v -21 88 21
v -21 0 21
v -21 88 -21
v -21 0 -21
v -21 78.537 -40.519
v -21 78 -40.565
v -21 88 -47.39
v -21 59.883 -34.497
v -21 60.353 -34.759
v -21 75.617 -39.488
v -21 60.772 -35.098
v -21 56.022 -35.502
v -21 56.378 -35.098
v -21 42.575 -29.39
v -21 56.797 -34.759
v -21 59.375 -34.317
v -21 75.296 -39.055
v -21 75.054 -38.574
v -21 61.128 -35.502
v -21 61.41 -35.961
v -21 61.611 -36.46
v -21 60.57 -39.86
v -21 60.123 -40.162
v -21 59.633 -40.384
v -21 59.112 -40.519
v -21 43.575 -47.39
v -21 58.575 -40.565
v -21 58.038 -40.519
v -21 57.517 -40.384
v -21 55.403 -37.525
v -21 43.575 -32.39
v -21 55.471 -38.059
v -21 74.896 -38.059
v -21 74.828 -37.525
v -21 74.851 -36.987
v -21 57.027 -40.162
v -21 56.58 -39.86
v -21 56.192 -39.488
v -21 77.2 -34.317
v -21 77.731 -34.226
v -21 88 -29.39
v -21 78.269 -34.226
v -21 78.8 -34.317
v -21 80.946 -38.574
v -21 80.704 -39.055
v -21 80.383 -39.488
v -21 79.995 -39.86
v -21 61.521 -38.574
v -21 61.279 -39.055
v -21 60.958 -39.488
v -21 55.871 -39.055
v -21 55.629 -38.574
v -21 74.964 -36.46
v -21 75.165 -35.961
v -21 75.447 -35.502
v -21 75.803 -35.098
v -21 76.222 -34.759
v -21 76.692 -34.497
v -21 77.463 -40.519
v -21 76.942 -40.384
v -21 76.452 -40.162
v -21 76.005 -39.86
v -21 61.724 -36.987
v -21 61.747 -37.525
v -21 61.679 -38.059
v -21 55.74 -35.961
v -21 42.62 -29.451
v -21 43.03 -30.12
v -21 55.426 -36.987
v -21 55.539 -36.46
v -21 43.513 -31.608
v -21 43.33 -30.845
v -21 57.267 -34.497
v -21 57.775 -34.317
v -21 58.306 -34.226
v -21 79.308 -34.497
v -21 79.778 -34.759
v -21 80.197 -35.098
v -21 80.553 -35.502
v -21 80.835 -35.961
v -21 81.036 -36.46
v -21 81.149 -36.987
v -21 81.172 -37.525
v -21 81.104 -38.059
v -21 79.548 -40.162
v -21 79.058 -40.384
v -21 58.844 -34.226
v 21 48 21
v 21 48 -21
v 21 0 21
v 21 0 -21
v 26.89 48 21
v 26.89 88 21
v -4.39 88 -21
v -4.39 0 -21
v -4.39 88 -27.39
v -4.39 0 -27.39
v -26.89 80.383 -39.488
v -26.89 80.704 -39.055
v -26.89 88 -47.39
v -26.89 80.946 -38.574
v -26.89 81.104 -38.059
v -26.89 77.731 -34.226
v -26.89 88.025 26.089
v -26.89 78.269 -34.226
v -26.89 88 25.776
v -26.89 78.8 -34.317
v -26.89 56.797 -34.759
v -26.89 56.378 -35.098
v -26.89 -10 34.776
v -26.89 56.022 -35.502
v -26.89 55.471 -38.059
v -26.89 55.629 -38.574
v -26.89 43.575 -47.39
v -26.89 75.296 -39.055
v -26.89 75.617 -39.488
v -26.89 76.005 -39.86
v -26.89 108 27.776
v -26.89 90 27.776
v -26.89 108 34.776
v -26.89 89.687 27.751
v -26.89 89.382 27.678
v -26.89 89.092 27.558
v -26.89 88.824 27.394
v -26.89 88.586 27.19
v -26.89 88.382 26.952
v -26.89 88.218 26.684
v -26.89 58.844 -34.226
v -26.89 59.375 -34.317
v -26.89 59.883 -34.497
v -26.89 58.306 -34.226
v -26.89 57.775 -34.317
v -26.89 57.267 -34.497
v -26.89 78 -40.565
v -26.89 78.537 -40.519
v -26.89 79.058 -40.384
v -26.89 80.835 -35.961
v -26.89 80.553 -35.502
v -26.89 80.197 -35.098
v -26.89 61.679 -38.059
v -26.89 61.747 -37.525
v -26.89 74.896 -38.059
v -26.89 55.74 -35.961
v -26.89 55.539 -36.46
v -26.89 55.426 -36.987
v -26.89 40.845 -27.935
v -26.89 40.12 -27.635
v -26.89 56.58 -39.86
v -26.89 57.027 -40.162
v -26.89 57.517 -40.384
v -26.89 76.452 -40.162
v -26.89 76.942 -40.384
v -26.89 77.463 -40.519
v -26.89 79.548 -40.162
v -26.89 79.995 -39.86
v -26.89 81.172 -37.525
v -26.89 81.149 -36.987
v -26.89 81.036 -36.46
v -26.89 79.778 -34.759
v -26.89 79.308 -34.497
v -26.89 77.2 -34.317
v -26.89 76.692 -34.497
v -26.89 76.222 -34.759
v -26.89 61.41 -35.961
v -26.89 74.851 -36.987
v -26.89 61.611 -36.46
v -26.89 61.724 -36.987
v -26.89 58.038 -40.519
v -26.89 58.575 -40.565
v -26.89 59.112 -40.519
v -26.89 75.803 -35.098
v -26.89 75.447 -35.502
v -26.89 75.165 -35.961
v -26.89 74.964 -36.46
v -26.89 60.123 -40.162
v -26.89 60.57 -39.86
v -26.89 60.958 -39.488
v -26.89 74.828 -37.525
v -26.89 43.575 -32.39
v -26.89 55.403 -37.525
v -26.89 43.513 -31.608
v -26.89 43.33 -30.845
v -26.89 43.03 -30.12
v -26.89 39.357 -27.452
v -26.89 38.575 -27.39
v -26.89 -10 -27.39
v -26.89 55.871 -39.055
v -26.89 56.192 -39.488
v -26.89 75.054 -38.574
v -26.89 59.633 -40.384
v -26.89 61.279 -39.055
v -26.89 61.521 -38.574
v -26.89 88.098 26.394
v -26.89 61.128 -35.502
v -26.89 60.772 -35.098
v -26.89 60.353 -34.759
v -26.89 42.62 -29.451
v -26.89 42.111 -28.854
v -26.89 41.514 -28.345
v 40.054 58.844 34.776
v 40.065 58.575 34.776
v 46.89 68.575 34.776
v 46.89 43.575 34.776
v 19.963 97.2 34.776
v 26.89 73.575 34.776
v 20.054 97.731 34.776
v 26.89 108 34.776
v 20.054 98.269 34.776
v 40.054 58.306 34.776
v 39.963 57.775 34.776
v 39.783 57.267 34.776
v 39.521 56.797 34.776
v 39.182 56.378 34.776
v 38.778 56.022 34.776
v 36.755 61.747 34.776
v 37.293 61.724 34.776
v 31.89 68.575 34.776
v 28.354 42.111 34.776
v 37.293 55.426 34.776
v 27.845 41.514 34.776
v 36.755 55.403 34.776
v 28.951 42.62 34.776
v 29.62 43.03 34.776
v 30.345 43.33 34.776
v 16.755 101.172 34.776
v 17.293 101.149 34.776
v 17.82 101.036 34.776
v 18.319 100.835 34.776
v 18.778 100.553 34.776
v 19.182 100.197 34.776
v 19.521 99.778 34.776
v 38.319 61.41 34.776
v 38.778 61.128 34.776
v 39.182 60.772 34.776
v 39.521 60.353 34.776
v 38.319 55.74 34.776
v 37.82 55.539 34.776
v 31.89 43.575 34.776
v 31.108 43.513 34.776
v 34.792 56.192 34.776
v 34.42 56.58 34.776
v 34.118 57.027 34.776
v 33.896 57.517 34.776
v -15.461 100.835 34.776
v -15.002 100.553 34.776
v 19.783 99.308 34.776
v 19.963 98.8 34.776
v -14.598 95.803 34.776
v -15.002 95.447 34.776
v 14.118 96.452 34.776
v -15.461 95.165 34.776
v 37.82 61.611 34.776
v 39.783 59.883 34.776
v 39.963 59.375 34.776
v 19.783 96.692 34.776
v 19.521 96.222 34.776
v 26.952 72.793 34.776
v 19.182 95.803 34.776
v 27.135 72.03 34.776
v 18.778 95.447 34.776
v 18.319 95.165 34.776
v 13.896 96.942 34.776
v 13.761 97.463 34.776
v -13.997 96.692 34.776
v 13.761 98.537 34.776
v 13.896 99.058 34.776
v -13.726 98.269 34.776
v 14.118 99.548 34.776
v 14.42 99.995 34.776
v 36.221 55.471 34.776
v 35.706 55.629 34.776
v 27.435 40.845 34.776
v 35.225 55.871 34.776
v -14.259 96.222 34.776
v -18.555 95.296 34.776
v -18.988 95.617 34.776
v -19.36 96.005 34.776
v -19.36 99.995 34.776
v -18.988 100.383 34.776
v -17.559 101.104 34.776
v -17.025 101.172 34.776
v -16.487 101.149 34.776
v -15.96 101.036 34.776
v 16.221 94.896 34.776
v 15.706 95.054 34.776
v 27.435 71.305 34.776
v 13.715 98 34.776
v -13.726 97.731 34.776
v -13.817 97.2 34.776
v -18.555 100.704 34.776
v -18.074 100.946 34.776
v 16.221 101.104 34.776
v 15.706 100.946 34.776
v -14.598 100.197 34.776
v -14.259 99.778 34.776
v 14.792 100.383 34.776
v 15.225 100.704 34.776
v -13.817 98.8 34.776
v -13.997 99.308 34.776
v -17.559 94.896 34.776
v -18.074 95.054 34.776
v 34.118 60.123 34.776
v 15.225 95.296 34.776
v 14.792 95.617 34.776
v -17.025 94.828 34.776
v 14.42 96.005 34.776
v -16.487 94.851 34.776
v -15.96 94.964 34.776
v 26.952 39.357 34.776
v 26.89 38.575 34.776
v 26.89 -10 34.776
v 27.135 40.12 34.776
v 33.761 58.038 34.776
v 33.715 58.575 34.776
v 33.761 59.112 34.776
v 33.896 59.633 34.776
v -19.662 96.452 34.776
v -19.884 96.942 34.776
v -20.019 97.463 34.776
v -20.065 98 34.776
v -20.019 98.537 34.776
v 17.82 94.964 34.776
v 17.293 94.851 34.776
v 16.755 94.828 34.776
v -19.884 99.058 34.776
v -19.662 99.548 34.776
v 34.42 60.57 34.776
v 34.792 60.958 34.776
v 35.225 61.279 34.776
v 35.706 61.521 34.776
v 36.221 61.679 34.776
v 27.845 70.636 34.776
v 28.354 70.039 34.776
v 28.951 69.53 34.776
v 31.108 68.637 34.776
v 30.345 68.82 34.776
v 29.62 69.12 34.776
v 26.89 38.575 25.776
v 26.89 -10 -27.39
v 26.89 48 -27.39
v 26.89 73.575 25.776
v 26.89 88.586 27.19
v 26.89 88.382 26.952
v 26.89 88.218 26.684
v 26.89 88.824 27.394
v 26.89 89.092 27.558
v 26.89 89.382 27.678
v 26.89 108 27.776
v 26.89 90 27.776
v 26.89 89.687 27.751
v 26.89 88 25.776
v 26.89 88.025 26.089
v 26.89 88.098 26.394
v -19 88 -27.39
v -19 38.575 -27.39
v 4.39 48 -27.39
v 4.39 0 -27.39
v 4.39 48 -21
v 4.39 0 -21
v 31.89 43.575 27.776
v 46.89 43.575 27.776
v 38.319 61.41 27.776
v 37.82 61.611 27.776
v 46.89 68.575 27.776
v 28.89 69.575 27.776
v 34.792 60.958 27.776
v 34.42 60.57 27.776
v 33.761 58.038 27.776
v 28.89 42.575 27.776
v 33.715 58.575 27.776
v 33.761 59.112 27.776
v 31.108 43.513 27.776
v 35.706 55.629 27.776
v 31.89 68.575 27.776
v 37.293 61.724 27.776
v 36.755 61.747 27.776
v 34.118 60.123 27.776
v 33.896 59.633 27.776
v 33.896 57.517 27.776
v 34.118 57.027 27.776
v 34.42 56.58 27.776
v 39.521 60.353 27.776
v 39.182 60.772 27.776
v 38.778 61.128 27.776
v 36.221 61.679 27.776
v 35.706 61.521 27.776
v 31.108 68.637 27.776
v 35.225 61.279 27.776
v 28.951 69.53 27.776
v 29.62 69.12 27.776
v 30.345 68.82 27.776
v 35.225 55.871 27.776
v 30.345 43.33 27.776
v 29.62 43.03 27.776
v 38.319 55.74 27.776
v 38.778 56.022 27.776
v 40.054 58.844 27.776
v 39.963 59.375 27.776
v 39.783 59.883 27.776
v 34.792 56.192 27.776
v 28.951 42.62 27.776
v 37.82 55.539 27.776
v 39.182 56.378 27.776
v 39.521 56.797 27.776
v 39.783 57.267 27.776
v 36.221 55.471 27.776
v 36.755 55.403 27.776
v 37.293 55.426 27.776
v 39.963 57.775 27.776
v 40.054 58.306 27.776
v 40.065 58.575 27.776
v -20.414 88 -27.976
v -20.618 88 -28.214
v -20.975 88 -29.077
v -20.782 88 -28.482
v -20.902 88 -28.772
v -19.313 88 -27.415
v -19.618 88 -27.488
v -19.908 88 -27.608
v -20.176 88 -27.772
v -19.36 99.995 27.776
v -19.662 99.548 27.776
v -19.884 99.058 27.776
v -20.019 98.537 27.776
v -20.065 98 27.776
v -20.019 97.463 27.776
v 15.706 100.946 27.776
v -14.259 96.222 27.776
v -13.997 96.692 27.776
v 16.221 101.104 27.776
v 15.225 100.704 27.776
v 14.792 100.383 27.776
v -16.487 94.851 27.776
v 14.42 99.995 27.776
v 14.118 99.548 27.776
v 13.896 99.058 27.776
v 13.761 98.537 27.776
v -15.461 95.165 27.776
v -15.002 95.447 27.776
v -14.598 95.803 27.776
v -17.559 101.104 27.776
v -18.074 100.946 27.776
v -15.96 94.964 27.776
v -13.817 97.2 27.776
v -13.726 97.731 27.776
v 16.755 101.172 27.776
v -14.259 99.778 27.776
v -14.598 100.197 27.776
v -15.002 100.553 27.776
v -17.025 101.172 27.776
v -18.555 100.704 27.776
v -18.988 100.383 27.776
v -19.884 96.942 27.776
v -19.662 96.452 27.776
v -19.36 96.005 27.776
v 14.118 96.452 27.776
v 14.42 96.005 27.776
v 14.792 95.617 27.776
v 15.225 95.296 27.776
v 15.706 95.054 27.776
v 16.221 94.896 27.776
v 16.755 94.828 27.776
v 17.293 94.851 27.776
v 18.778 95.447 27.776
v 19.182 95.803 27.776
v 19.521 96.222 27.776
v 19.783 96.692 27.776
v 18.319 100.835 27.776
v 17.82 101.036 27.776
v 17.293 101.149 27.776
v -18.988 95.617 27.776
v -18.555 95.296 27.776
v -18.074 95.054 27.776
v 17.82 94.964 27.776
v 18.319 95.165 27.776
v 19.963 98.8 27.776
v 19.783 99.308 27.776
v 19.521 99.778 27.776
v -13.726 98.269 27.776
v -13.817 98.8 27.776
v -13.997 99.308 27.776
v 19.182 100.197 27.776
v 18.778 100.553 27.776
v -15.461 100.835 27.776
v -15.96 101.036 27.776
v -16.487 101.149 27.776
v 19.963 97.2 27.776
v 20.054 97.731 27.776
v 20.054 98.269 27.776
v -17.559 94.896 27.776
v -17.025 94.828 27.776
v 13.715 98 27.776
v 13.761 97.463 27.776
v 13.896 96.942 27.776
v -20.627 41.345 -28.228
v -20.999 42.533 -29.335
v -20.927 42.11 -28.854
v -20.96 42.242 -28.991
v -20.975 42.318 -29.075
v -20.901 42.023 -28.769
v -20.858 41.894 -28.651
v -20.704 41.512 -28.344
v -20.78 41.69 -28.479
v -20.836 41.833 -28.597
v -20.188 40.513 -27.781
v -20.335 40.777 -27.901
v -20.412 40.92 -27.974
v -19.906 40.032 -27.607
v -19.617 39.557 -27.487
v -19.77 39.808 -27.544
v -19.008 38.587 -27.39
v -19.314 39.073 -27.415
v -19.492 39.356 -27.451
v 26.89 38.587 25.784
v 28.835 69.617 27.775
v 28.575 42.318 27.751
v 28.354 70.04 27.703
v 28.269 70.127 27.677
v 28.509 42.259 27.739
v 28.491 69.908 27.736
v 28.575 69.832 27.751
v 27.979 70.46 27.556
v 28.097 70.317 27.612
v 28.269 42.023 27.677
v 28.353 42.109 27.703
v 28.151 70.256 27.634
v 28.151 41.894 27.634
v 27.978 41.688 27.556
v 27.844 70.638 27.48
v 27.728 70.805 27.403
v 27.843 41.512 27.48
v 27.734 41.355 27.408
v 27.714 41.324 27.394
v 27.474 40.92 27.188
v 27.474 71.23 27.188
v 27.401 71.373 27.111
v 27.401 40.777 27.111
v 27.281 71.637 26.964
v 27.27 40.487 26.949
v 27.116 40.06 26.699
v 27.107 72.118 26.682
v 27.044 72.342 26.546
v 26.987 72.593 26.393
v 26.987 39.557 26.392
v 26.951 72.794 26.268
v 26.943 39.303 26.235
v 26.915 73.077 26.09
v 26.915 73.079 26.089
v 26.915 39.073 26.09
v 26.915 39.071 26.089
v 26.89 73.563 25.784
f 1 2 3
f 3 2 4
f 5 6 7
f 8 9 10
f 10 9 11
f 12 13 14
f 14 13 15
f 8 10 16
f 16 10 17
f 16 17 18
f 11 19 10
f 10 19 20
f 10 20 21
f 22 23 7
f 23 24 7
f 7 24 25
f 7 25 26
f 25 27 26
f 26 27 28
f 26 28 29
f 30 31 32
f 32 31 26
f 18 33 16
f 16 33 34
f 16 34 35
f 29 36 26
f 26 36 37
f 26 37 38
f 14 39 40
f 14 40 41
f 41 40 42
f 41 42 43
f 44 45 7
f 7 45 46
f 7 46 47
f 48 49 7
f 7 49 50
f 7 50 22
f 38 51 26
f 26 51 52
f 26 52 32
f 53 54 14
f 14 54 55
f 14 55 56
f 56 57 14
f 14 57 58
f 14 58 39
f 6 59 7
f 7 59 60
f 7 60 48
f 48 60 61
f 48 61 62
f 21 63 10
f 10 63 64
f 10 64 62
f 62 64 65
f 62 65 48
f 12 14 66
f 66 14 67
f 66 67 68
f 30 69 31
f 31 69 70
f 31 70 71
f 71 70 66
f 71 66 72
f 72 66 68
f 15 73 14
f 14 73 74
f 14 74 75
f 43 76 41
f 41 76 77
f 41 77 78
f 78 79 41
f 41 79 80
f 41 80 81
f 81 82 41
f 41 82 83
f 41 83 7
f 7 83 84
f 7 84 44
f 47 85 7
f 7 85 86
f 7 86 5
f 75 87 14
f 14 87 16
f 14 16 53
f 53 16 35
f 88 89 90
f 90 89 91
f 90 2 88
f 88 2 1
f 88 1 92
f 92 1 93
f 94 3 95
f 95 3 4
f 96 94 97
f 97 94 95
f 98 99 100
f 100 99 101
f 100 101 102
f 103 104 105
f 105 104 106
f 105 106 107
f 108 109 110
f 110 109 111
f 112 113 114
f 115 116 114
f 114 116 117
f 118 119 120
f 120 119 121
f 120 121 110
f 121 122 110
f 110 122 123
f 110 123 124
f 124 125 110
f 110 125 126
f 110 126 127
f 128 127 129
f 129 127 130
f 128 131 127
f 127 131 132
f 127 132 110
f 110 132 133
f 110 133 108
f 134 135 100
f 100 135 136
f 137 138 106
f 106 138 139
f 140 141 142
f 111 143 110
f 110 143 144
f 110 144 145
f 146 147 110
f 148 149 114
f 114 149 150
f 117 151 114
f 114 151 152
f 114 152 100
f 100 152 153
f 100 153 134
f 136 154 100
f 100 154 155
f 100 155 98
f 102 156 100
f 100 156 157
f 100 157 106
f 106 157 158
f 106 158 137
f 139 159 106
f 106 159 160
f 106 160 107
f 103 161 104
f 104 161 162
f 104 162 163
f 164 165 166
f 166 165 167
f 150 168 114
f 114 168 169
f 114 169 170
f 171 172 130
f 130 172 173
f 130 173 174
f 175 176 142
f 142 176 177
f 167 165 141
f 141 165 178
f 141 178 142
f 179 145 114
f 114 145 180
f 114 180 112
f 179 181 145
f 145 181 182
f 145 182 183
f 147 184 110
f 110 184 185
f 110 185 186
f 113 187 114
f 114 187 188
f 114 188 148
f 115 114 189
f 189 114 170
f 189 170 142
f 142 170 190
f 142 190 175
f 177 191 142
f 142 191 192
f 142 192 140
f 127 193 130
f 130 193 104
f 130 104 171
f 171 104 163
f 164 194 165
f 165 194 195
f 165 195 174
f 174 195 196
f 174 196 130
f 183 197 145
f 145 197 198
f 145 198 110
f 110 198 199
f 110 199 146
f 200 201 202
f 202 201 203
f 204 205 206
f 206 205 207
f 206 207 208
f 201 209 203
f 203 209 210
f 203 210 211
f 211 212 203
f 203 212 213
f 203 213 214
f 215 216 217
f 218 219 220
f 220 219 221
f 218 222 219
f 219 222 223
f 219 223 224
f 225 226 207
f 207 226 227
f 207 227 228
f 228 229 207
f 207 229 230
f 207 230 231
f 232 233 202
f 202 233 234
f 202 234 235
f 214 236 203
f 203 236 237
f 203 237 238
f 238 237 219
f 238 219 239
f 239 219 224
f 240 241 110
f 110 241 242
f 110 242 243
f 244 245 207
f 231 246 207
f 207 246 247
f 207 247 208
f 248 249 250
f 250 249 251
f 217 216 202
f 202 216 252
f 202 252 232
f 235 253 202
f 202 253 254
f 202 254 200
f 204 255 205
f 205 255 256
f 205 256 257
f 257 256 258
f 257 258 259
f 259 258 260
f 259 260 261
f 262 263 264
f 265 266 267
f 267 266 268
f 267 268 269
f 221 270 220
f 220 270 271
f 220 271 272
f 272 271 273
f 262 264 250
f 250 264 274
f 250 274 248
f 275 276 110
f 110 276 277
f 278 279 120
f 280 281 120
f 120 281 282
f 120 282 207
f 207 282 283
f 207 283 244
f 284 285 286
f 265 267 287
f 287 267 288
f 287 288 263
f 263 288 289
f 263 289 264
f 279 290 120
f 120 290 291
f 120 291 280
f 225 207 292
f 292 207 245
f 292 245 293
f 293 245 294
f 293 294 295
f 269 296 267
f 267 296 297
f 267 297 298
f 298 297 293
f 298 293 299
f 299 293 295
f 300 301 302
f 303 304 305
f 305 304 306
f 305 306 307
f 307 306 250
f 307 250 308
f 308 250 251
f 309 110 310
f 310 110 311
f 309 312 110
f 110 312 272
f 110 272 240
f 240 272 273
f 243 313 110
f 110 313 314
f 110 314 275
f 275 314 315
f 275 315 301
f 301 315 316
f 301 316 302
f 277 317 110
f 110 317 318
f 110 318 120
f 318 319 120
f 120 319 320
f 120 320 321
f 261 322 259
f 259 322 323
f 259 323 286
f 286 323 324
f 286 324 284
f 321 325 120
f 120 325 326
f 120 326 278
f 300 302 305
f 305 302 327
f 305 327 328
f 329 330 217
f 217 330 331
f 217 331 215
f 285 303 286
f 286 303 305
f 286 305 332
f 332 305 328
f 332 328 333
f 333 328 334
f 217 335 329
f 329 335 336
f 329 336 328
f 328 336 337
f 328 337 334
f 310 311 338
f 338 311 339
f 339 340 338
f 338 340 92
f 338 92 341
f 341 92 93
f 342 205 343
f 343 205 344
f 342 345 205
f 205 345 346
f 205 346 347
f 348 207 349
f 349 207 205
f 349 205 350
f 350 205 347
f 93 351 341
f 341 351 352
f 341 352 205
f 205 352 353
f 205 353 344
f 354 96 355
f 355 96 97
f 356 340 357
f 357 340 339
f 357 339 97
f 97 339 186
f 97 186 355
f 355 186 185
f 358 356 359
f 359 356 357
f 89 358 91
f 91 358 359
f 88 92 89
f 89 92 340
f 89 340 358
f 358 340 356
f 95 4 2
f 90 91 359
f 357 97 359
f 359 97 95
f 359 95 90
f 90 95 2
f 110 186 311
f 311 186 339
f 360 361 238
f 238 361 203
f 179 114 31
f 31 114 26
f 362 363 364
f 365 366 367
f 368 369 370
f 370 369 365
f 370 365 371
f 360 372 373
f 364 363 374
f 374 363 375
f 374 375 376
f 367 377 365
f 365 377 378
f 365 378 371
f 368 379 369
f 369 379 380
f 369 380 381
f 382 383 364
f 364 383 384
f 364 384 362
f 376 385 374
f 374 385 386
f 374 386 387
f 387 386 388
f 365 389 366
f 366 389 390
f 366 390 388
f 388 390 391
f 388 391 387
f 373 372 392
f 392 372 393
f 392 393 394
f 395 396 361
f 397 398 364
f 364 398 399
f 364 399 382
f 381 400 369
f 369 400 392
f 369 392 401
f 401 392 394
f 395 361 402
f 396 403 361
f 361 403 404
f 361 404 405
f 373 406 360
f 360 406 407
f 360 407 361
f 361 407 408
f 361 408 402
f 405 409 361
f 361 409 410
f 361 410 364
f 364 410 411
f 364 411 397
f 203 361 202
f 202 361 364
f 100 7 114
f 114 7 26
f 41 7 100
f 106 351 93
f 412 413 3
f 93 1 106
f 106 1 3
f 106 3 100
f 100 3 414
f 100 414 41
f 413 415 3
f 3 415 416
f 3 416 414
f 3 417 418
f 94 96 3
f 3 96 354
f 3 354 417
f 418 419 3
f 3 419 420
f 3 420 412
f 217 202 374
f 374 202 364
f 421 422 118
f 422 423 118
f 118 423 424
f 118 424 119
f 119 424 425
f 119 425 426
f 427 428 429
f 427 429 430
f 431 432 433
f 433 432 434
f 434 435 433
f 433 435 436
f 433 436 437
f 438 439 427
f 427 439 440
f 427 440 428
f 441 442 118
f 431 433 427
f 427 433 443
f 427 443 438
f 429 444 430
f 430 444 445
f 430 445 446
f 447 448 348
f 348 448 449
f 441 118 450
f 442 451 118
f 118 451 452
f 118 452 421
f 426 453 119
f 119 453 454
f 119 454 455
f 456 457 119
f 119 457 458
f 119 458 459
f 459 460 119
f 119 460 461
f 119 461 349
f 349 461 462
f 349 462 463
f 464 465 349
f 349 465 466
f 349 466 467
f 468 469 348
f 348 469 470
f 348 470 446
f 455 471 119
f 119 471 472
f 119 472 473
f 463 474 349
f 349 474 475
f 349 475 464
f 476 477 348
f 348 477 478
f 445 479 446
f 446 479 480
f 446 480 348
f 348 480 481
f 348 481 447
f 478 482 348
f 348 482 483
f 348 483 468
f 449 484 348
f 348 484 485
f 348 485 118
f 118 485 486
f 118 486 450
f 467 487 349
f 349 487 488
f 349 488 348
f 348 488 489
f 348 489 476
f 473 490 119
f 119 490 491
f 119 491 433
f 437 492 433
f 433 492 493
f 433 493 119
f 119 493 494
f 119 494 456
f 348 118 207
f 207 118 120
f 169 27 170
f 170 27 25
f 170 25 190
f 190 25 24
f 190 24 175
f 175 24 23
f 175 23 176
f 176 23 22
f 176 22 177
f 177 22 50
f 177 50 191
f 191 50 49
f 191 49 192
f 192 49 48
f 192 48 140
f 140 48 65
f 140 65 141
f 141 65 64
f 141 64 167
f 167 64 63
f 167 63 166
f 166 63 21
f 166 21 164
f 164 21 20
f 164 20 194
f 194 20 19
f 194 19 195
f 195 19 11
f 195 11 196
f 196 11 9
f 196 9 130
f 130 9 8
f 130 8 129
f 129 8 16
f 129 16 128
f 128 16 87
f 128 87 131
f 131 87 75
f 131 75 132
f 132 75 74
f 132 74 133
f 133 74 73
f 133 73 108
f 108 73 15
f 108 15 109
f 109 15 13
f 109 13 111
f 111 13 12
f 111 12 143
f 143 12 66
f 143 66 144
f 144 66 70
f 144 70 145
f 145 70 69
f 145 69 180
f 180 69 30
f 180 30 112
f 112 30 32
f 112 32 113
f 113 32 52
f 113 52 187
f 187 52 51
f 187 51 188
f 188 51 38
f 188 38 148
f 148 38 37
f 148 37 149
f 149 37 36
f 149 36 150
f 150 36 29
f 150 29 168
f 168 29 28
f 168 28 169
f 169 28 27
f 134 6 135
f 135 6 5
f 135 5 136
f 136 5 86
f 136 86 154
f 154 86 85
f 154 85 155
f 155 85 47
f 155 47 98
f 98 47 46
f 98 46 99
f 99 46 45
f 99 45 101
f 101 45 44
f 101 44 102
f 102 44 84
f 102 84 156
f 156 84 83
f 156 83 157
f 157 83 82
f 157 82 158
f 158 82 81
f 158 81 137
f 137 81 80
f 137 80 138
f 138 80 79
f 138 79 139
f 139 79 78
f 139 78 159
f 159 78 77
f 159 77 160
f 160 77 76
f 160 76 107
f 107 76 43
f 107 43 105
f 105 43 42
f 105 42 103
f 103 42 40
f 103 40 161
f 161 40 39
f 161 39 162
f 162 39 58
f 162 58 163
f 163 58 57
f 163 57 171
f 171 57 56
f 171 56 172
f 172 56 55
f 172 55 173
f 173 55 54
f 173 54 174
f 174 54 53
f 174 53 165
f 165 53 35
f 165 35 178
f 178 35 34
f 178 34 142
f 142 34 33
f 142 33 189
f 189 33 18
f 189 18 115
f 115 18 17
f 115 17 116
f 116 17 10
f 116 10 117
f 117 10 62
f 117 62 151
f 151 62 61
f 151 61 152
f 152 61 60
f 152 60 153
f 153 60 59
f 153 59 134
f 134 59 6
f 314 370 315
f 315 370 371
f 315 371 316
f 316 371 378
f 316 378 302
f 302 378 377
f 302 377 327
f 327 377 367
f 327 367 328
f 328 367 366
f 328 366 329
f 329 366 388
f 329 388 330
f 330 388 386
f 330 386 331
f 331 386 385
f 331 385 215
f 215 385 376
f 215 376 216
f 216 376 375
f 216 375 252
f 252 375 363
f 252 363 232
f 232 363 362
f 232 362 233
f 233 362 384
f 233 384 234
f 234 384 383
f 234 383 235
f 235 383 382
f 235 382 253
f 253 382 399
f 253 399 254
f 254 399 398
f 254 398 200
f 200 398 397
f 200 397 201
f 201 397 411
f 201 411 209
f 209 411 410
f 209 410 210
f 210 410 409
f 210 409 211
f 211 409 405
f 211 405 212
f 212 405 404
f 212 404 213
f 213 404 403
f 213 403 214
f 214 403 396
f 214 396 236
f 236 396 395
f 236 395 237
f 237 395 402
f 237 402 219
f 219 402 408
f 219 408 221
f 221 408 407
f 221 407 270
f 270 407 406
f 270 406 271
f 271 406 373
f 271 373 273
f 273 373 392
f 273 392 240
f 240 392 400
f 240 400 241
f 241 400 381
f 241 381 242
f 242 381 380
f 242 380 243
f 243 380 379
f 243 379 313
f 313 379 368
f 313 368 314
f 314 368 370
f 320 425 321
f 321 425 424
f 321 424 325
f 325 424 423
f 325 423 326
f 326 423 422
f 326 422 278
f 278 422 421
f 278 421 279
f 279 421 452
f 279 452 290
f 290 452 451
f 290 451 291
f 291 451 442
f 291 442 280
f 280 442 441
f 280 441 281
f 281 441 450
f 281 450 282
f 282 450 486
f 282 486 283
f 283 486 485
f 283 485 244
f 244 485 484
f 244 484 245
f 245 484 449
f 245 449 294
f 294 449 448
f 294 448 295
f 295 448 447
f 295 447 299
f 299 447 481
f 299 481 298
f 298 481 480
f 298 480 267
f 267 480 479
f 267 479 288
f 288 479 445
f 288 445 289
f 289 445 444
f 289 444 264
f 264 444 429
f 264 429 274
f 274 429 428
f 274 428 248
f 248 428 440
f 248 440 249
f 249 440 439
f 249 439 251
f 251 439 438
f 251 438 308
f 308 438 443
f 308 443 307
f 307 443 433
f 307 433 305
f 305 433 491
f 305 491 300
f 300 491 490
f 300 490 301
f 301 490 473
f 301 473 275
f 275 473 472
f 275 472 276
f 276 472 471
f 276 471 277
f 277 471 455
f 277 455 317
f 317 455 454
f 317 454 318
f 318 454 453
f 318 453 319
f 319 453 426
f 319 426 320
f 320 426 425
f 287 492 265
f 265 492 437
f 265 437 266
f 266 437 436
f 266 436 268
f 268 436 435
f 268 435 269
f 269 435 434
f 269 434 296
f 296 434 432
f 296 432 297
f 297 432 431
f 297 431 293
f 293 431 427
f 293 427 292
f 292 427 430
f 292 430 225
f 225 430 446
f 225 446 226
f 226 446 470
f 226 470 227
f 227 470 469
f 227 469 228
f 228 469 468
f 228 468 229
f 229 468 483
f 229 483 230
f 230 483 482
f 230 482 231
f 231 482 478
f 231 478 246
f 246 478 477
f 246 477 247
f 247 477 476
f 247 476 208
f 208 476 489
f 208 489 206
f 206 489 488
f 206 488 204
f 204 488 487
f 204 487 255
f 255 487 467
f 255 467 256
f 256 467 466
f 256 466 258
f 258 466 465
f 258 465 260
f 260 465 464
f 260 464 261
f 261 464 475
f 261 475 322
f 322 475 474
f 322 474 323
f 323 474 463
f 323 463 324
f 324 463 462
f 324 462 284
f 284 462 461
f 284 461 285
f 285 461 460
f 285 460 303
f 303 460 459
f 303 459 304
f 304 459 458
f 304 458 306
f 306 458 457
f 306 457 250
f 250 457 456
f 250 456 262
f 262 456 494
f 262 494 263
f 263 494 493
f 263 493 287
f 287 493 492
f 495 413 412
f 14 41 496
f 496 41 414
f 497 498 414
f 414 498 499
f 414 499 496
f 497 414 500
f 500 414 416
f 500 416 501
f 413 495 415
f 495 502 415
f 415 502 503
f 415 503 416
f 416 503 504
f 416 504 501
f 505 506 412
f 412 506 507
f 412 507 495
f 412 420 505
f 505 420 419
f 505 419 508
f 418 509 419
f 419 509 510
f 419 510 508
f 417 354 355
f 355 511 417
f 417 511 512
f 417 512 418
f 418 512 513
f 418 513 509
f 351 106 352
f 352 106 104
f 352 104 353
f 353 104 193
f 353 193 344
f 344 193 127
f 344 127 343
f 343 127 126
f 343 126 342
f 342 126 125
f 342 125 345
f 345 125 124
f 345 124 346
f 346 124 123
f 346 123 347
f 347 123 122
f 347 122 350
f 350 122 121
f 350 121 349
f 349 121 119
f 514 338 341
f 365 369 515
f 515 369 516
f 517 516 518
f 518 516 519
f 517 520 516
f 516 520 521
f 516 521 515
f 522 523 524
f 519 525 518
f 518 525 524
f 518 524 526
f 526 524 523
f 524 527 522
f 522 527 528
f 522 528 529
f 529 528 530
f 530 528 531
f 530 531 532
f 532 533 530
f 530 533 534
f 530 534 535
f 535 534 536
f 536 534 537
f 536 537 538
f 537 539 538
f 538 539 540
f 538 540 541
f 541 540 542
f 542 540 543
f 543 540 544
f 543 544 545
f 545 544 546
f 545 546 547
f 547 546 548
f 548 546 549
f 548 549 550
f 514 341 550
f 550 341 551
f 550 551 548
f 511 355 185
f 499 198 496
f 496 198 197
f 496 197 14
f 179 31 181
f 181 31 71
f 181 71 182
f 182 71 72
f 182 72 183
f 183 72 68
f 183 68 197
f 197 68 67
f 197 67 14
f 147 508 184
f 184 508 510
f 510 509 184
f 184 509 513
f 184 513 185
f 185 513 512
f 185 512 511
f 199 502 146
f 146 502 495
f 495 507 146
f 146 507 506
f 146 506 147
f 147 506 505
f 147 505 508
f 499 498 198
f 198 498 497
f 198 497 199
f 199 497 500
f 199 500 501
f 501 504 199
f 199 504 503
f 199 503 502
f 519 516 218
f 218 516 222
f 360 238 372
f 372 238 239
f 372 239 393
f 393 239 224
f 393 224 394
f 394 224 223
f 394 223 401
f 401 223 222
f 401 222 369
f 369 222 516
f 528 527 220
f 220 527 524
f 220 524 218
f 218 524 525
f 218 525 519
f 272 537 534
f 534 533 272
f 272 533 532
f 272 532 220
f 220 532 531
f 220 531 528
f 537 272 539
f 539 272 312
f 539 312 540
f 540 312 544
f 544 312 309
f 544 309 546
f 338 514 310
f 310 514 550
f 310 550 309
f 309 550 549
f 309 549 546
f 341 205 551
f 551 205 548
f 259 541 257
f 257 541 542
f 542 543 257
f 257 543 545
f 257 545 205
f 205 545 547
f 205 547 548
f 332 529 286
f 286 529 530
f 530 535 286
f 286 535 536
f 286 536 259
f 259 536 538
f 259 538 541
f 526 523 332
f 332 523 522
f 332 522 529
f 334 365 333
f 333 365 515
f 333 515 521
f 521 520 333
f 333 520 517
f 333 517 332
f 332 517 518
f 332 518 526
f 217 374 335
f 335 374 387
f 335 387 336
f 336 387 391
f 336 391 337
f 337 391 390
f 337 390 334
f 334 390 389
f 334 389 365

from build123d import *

# Parameters (mm, degrees)
BOSS_EXTRUDE1_DEPTH      = 48
SKETCH2_W                = 53.78
SKETCH2_H                = 62.166
BOSS_EXTRUDE2_DEPTH      = 10
BOSS_EXTRUDE3_DEPTH      = 40
BOSS_EXTRUDE3_DEPTH_BACK = 4.425
SKETCH6_W                = 20
SKETCH6_H                = 19.425
CUT_EXTRUDE3_DEPTH       = 125.870331368
SKETCH7_W                = 53.78
SKETCH7_H                = 7
BOSS_EXTRUDE4_DEPTH      = 20
SKETCH9_W                = 16.61
SKETCH9_H                = 6.39
BOSS_EXTRUDE5_DEPTH      = 40
SKETCH4_R                = 3.175
CUT_EXTRUDE1_DEPTH       = 137.084033597
SKETCH5_R                = 3.175
CUT_EXTRUDE2_DEPTH       = 140.687507158
SKETCH8_R                = 3.175
CUT_EXTRUDE4_DEPTH       = 140.687507158
FILLET1_R                = 2
FILLET2_R                = 5


with BuildPart() as part:
    # Sketch1 → Boss-Extrude1 (new body)
    with BuildSketch(Plane(origin=(0, 0, 0), x_dir=(1, 0, 0), z_dir=(0, 1, 0))):
        Polygon((4.39, 21), (4.39, 27.39), (26.89, 27.39), (26.89, -34.776), (-26.89, -34.776), (-26.89, 27.39), (-4.39, 27.39), (-4.39, 21), (-21, 21), (-21, -21), (21, -21), (21, 21), align=None)
    extrude(amount=BOSS_EXTRUDE1_DEPTH)

    # Sketch2 → Boss-Extrude2 (add)
    with BuildSketch(Plane(origin=(0, 0, 0), x_dir=(1, 0, 0), z_dir=(0, 1, 0))):
        with Locations((0, -3.693)):
            Rectangle(SKETCH2_W, SKETCH2_H)
    extrude(amount=-BOSS_EXTRUDE2_DEPTH)

    # Sketch3 → Boss-Extrude3 (add, two sides: drawn at the far end of the back side and taken through both)
    with BuildSketch(Plane(origin=(0, 48, 0), x_dir=(1, 0, 0), z_dir=(0, 1, 0)).offset(-BOSS_EXTRUDE3_DEPTH_BACK)):
        Polygon((26.89, -21), (26.89, -27.776), (46.89, -27.776), (46.89, -34.776), (-26.89, -34.776), (-26.89, 47.39), (-21, 47.39), (-21, -21), align=None)
    extrude(amount=BOSS_EXTRUDE3_DEPTH + BOSS_EXTRUDE3_DEPTH_BACK)

    # Sketch6 → Cut-Extrude3 (cut, through all)
    with BuildSketch(Plane(origin=(0, 0, 27.776), x_dir=(-1, 0, 0), z_dir=(0, 0, -1))):
        with Locations((-36.89, 78.2875)):
            Rectangle(SKETCH6_W, SKETCH6_H)
    extrude(amount=-CUT_EXTRUDE3_DEPTH, mode=Mode.SUBTRACT)

    # Sketch7 → Boss-Extrude4 (add)
    with BuildSketch(Plane(origin=(0, 88, 0), x_dir=(1, 0, 0), z_dir=(0, 1, 0))):
        with Locations((0, -31.276)):
            Rectangle(SKETCH7_W, SKETCH7_H)
    extrude(amount=BOSS_EXTRUDE4_DEPTH)

    # Sketch9 → Boss-Extrude5 (add)
    with BuildSketch(Plane(origin=(0, 48, 0), x_dir=(1, 0, 0), z_dir=(0, 1, 0))):
        with Locations((-12.695, 24.195)):
            Rectangle(SKETCH9_W, SKETCH9_H)
    extrude(amount=BOSS_EXTRUDE5_DEPTH)

    # Sketch4 → Cut-Extrude1 (cut, through all)
    with BuildSketch(Plane(origin=(-21, 0, 0), x_dir=(0, 0, -1), z_dir=(1, 0, 0))):
        with Locations((37.39, 78)):
            Circle(SKETCH4_R)
        with Locations((37.39, 58.575)):
            Circle(SKETCH4_R)
    extrude(amount=-CUT_EXTRUDE1_DEPTH, mode=Mode.SUBTRACT)

    # Sketch5 → Cut-Extrude2 (cut, through all)
    with BuildSketch(Plane.XY.offset(27.776)):
        with Locations((36.89, 58.575)):
            Circle(SKETCH5_R)
    extrude(amount=CUT_EXTRUDE2_DEPTH, mode=Mode.SUBTRACT)

    # Sketch8 → Cut-Extrude4 (cut, through all)
    with BuildSketch(Plane(origin=(0, 0, 27.776), x_dir=(-1, 0, 0), z_dir=(0, 0, -1))):
        with Locations((-16.89, 98)):
            Circle(SKETCH8_R)
        with Locations((16.89, 98)):
            Circle(SKETCH8_R)
    extrude(amount=-CUT_EXTRUDE4_DEPTH, mode=Mode.SUBTRACT)

    # Fillet1
    fillet1_edges = [part.edges().sort_by_distance(p)[0] for p in [
        (26.89, 56.075, 27.776),
        (0, 88, 27.776),
        (-21, 65.7875, -27.39),
    ]]
    fillet(fillet1_edges, radius=FILLET1_R)

    # Fillet2
    fillet2_edges = [part.edges().sort_by_distance(p)[0] for p in [
        (-22.945, 43.575, -27.39),
    ]]
    fillet(fillet2_edges, radius=FILLET2_R)
    fillet2_2_edges = [part.edges().sort_by_distance(p)[0] for p in [
        (26.89, 68.575, 30.276),
    ]]
    fillet(fillet2_2_edges, radius=FILLET2_R)
    fillet2_3_edges = [part.edges().sort_by_distance(p)[0] for p in [
        (26.89, 43.575, 30.276),
    ]]
    fillet(fillet2_3_edges, radius=FILLET2_R)


solid = part.part
